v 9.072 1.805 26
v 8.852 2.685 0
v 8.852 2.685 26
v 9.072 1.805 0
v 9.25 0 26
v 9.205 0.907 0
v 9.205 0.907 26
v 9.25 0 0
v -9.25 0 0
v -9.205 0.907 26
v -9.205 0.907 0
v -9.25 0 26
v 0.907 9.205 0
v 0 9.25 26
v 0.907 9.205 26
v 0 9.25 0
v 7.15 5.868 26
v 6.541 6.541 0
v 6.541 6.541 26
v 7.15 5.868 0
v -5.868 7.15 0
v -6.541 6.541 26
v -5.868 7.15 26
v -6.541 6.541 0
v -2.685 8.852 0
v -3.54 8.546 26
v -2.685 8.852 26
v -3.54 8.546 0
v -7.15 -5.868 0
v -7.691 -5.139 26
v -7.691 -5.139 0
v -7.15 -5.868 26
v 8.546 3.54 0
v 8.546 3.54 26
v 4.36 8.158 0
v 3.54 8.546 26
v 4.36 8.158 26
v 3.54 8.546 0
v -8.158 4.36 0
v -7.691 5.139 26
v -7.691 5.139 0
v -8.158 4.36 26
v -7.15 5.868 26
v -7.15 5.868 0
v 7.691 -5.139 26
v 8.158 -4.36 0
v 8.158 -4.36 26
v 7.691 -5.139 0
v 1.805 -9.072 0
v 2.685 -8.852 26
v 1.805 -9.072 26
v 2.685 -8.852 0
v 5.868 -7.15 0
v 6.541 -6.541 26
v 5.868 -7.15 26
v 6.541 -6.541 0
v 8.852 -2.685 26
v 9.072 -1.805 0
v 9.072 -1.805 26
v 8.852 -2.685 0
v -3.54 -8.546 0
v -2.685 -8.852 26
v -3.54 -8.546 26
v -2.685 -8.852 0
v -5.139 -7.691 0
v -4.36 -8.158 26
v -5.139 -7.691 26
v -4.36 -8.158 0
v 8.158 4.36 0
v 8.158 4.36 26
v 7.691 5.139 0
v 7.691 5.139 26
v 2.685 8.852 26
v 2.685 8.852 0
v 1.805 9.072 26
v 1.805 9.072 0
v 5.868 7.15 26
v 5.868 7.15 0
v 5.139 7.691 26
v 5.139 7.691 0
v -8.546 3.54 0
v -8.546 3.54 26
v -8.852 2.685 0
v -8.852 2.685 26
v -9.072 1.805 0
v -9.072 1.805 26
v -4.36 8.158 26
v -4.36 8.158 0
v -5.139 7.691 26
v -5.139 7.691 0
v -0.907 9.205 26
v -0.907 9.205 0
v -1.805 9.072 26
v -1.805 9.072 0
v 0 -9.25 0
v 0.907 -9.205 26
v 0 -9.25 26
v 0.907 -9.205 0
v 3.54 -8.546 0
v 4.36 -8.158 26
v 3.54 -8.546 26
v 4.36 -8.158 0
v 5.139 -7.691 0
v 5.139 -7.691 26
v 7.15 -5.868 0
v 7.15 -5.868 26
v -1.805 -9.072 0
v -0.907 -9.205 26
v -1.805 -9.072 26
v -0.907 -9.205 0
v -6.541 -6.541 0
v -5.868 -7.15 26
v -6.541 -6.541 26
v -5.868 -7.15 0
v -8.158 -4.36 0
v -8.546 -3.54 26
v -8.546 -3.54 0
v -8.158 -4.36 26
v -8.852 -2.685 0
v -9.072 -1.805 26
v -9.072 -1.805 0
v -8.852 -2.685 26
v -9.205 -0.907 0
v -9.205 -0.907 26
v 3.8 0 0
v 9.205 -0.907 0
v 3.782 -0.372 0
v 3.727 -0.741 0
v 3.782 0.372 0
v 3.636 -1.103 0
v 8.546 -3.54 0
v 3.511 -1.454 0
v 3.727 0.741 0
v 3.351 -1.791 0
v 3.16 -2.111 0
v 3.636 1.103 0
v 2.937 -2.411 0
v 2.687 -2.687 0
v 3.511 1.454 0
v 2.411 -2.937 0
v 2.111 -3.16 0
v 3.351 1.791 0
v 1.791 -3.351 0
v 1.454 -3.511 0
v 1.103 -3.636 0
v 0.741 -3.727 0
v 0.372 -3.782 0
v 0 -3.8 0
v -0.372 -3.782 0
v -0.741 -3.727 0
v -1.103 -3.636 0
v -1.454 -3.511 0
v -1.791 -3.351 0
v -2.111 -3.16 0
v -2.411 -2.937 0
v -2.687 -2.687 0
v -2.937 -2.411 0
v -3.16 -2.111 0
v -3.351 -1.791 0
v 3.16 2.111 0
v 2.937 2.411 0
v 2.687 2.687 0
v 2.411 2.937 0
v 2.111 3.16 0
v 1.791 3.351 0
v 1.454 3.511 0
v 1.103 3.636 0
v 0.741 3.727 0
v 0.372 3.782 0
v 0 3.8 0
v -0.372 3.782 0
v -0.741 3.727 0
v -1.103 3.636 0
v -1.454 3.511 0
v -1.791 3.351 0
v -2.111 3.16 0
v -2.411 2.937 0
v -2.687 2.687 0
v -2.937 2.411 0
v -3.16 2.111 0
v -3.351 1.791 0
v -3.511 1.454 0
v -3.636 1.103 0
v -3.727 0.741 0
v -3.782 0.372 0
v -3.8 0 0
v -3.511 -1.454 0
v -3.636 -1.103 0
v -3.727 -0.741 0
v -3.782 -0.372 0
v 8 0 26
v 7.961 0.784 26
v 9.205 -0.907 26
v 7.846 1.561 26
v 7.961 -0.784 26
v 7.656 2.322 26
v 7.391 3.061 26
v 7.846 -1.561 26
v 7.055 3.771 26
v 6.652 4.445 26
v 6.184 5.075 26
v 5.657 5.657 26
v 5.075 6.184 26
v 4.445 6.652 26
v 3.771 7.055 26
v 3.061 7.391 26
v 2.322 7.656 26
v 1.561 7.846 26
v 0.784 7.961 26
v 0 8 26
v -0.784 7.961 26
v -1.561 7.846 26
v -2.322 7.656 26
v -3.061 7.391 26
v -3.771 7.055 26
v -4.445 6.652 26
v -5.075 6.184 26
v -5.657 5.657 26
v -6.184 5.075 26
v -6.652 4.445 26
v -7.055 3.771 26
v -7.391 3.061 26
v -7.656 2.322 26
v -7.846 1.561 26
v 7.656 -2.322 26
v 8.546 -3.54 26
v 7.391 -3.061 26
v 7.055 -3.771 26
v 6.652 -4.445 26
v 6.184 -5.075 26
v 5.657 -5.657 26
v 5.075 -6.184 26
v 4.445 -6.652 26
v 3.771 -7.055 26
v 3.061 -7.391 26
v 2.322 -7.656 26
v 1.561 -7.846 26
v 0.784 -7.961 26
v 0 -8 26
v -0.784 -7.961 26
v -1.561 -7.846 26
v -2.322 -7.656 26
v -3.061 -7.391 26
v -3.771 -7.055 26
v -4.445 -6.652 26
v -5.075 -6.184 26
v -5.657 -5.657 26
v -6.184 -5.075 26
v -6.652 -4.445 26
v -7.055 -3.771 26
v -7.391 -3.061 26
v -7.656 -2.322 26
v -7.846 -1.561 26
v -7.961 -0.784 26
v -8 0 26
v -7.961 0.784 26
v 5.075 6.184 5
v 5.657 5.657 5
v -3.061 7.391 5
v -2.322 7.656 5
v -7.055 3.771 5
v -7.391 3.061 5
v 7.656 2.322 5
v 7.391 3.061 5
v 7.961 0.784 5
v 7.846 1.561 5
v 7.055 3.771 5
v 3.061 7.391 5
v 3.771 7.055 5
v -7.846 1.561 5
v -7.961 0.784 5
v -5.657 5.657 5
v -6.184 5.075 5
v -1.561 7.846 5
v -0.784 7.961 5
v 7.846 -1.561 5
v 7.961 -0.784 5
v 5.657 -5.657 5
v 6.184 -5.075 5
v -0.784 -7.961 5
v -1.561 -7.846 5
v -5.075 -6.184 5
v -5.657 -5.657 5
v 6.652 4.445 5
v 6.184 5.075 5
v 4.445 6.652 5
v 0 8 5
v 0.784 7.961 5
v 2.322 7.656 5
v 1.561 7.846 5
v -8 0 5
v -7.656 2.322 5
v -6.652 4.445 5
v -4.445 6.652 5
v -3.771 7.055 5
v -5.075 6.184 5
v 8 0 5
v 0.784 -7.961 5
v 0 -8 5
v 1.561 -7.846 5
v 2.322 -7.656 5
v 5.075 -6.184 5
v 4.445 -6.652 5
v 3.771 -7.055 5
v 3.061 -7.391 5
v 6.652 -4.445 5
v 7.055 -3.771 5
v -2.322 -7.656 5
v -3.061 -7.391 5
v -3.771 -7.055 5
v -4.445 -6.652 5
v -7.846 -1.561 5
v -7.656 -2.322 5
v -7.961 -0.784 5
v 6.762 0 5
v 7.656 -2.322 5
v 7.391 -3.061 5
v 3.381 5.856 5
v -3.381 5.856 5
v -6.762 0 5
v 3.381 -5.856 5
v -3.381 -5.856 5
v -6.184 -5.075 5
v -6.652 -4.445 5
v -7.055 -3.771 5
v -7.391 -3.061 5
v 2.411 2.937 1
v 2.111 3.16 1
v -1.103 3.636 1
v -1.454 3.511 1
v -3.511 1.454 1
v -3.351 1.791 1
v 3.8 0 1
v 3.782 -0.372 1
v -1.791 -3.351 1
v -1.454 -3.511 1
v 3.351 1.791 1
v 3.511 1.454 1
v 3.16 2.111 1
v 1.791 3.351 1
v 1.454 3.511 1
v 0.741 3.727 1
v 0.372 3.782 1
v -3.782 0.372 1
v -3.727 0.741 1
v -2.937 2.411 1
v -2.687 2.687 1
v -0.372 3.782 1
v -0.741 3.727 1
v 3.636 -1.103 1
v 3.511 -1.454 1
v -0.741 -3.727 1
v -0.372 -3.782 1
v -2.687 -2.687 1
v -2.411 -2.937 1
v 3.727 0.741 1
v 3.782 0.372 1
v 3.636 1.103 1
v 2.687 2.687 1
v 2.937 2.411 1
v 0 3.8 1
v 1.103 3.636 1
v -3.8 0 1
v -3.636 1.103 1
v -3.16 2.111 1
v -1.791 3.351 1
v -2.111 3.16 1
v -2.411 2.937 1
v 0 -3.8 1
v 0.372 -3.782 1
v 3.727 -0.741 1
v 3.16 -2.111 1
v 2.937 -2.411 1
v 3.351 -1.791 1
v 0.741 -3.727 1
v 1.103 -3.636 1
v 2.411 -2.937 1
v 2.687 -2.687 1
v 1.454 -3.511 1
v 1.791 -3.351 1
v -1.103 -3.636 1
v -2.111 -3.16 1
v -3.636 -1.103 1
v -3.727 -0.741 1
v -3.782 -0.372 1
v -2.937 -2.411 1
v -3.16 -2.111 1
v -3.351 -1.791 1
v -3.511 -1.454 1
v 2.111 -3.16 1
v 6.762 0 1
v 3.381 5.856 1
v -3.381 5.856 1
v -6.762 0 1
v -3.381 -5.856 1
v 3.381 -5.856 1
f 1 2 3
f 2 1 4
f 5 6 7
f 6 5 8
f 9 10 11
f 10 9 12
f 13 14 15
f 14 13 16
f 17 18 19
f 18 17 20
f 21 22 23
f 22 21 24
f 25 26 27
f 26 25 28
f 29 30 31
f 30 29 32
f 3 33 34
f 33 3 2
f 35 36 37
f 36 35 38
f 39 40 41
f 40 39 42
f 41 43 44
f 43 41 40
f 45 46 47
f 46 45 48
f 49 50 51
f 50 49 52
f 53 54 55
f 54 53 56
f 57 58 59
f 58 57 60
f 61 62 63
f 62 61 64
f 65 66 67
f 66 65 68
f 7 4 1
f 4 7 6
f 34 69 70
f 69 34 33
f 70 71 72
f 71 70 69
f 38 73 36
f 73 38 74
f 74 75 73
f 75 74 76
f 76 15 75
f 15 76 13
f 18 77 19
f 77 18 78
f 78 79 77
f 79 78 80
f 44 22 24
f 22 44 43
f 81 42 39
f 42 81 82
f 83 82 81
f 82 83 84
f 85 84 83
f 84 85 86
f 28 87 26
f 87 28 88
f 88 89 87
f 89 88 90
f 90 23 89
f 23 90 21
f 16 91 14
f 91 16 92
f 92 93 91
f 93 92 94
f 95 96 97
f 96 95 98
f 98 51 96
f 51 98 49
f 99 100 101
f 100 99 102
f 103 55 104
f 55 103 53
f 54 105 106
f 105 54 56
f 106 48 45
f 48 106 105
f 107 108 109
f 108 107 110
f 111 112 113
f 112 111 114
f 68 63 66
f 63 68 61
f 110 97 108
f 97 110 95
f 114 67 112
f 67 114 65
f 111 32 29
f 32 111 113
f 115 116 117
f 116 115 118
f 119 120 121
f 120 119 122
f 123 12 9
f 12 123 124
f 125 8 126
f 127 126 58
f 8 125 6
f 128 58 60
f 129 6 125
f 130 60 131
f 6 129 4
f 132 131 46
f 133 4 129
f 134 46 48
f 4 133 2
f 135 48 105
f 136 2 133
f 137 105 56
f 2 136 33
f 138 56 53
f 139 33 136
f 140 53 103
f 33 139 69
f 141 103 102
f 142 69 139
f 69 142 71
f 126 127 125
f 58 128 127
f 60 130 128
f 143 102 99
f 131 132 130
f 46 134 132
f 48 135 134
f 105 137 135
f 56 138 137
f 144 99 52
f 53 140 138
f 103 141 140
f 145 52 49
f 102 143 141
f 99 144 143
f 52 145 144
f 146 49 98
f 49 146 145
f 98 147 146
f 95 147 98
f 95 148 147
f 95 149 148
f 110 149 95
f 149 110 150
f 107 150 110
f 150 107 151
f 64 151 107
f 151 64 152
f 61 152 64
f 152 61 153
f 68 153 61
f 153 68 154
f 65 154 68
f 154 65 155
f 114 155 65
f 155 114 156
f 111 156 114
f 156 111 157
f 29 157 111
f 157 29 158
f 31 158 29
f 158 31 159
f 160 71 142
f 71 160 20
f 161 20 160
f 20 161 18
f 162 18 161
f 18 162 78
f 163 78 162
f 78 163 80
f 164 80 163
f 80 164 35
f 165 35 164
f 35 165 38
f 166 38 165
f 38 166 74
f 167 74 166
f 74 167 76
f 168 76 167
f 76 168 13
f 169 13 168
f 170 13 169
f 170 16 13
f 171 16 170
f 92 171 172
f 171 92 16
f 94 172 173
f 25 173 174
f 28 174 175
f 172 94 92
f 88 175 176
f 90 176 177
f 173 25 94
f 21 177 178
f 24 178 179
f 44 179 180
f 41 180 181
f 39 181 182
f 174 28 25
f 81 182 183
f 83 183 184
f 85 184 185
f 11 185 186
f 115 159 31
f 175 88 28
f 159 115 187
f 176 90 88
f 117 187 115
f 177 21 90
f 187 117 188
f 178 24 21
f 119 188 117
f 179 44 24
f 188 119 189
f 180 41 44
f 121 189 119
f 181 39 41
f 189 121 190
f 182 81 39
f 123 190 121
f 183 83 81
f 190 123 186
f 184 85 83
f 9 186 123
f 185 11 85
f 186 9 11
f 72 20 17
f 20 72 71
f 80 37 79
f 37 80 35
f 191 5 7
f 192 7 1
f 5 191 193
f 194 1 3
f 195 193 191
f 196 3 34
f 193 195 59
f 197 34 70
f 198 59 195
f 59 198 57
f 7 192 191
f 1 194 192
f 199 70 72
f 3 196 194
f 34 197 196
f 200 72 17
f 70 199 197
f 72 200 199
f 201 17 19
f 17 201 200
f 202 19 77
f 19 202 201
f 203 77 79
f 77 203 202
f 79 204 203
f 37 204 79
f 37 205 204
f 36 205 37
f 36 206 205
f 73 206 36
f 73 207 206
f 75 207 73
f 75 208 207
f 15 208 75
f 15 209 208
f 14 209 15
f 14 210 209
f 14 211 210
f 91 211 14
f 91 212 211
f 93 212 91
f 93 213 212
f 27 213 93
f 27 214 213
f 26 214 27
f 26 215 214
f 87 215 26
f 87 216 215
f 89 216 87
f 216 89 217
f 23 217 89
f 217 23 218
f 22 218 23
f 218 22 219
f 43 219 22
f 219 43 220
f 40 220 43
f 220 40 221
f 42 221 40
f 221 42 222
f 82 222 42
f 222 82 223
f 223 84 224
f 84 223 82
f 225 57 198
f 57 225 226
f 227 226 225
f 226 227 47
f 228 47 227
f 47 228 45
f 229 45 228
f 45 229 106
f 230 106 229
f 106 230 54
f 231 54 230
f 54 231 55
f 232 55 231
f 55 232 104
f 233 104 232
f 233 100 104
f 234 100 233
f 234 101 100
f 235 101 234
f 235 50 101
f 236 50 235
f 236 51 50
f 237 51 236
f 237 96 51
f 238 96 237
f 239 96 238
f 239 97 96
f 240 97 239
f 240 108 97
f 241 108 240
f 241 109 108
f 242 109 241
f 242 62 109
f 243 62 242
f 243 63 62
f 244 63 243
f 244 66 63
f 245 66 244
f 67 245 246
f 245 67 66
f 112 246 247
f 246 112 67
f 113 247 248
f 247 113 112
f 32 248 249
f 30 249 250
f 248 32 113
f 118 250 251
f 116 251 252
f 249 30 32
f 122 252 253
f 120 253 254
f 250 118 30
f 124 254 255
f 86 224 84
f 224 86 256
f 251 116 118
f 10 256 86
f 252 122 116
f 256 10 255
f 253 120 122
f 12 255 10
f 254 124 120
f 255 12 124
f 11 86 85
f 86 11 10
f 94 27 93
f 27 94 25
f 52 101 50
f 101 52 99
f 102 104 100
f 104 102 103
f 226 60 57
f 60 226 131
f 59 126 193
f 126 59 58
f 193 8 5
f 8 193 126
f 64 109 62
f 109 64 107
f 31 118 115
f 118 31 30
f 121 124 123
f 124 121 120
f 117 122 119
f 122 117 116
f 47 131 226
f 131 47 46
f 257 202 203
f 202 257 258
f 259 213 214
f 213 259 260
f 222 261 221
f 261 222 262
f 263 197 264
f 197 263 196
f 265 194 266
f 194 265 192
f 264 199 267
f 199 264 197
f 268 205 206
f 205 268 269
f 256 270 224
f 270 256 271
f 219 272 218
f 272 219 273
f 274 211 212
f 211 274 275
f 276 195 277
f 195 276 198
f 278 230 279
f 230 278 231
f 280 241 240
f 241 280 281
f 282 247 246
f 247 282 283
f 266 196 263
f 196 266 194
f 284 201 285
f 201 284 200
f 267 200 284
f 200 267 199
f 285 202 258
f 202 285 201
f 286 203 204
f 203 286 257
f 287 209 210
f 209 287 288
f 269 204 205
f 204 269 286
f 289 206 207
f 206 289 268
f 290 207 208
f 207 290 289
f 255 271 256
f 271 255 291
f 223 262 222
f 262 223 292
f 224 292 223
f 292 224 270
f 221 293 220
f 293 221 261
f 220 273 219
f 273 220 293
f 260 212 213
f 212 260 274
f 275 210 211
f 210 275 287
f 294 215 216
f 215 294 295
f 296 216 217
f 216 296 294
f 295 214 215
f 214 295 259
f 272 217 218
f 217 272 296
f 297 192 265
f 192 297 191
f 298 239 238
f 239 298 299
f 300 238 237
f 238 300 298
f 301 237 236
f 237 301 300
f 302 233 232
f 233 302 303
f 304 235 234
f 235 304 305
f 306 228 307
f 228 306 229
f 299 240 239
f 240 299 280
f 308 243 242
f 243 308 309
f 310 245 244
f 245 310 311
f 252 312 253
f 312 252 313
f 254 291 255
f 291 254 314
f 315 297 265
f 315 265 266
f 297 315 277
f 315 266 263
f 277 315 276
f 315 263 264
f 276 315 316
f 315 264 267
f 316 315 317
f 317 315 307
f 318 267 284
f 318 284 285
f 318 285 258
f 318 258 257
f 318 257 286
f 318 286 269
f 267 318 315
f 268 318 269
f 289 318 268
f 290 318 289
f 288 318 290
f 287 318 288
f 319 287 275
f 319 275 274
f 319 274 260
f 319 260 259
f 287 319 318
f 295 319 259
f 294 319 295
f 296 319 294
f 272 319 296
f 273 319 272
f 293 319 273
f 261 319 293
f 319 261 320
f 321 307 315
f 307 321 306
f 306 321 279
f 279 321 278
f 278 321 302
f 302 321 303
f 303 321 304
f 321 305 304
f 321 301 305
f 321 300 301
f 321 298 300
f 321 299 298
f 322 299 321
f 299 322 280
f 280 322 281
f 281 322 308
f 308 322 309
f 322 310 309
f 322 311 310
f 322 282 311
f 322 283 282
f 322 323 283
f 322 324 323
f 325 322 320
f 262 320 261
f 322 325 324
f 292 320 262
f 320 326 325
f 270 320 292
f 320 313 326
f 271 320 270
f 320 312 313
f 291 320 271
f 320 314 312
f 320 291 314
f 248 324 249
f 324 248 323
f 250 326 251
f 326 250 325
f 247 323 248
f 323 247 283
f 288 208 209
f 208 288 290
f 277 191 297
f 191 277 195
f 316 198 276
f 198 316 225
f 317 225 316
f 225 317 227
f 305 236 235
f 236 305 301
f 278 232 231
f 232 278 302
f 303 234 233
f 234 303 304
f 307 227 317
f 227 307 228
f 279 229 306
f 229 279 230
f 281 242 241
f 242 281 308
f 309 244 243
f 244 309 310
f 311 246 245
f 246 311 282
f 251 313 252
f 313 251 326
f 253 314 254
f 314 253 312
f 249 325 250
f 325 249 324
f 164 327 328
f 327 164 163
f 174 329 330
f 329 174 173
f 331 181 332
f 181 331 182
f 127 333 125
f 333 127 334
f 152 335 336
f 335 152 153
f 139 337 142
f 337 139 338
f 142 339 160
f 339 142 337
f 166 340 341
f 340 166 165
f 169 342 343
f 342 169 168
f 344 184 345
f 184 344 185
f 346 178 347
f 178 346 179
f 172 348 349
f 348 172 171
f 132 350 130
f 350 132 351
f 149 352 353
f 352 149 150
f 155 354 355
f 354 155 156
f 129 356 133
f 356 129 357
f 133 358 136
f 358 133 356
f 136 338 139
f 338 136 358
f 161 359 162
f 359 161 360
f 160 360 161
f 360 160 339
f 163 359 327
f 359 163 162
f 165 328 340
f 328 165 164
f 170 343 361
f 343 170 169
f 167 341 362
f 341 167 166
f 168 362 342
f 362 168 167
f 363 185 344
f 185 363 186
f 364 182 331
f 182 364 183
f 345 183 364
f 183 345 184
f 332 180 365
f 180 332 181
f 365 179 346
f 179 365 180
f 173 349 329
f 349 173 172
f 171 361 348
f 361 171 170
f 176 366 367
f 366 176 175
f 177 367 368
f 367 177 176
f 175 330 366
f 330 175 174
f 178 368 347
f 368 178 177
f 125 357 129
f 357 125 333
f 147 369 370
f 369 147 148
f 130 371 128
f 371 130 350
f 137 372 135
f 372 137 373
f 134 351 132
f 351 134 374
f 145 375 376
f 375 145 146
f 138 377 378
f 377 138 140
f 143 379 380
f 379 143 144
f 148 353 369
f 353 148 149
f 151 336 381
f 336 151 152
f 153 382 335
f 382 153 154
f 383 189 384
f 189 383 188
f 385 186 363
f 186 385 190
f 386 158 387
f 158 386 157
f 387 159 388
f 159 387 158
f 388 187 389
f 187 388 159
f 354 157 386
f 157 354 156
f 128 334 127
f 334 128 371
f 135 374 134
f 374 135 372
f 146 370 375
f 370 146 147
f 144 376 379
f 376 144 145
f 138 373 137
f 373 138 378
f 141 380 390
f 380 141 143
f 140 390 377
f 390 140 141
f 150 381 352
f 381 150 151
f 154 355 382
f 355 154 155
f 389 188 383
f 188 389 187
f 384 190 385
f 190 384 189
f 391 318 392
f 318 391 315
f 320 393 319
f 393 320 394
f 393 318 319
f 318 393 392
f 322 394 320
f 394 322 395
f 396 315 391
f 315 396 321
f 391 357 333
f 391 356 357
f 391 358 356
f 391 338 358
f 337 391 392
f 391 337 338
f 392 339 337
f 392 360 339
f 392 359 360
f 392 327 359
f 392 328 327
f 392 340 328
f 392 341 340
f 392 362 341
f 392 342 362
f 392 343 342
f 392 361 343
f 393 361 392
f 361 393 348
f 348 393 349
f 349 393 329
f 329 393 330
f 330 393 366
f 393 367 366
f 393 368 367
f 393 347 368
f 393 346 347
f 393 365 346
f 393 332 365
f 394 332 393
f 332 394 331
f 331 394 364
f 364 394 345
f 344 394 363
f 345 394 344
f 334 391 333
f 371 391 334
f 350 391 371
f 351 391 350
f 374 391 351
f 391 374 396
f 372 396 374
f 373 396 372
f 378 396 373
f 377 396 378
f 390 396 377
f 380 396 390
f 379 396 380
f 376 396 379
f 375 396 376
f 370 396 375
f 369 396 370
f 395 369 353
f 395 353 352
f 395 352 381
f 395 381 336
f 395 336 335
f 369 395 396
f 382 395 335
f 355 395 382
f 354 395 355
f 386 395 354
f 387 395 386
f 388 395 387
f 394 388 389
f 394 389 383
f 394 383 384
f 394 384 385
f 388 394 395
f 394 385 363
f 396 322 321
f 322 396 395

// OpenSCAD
tolerance = 0.01;
connectorDia = 7.6;
connectorNutDia = 12.2;
$fn = 64;

module nutTrap(height = 3, diameter = 6) {
    upscaleRatio = 1/cos(180/6);
    cylinder(r = (diameter * 0.96)/2 * upscaleRatio, h = height, $fn=6);
}

module connectorCase() {
    difference() {
        // main body
        cylinder(d = 18.5, h = 26);
        
        // upper cutout
        translate([0, 0, 5]) cylinder(d = 16, h = 25);
        
        // connector cutout
        translate([0, 0, -tolerance]) cylinder(d = connectorDia, h = 6);
        
        // nut cutout
        translate([0, 0, 1]) nutTrap(diameter = connectorNutDia, height = 6);
    }
}

connectorCase();
